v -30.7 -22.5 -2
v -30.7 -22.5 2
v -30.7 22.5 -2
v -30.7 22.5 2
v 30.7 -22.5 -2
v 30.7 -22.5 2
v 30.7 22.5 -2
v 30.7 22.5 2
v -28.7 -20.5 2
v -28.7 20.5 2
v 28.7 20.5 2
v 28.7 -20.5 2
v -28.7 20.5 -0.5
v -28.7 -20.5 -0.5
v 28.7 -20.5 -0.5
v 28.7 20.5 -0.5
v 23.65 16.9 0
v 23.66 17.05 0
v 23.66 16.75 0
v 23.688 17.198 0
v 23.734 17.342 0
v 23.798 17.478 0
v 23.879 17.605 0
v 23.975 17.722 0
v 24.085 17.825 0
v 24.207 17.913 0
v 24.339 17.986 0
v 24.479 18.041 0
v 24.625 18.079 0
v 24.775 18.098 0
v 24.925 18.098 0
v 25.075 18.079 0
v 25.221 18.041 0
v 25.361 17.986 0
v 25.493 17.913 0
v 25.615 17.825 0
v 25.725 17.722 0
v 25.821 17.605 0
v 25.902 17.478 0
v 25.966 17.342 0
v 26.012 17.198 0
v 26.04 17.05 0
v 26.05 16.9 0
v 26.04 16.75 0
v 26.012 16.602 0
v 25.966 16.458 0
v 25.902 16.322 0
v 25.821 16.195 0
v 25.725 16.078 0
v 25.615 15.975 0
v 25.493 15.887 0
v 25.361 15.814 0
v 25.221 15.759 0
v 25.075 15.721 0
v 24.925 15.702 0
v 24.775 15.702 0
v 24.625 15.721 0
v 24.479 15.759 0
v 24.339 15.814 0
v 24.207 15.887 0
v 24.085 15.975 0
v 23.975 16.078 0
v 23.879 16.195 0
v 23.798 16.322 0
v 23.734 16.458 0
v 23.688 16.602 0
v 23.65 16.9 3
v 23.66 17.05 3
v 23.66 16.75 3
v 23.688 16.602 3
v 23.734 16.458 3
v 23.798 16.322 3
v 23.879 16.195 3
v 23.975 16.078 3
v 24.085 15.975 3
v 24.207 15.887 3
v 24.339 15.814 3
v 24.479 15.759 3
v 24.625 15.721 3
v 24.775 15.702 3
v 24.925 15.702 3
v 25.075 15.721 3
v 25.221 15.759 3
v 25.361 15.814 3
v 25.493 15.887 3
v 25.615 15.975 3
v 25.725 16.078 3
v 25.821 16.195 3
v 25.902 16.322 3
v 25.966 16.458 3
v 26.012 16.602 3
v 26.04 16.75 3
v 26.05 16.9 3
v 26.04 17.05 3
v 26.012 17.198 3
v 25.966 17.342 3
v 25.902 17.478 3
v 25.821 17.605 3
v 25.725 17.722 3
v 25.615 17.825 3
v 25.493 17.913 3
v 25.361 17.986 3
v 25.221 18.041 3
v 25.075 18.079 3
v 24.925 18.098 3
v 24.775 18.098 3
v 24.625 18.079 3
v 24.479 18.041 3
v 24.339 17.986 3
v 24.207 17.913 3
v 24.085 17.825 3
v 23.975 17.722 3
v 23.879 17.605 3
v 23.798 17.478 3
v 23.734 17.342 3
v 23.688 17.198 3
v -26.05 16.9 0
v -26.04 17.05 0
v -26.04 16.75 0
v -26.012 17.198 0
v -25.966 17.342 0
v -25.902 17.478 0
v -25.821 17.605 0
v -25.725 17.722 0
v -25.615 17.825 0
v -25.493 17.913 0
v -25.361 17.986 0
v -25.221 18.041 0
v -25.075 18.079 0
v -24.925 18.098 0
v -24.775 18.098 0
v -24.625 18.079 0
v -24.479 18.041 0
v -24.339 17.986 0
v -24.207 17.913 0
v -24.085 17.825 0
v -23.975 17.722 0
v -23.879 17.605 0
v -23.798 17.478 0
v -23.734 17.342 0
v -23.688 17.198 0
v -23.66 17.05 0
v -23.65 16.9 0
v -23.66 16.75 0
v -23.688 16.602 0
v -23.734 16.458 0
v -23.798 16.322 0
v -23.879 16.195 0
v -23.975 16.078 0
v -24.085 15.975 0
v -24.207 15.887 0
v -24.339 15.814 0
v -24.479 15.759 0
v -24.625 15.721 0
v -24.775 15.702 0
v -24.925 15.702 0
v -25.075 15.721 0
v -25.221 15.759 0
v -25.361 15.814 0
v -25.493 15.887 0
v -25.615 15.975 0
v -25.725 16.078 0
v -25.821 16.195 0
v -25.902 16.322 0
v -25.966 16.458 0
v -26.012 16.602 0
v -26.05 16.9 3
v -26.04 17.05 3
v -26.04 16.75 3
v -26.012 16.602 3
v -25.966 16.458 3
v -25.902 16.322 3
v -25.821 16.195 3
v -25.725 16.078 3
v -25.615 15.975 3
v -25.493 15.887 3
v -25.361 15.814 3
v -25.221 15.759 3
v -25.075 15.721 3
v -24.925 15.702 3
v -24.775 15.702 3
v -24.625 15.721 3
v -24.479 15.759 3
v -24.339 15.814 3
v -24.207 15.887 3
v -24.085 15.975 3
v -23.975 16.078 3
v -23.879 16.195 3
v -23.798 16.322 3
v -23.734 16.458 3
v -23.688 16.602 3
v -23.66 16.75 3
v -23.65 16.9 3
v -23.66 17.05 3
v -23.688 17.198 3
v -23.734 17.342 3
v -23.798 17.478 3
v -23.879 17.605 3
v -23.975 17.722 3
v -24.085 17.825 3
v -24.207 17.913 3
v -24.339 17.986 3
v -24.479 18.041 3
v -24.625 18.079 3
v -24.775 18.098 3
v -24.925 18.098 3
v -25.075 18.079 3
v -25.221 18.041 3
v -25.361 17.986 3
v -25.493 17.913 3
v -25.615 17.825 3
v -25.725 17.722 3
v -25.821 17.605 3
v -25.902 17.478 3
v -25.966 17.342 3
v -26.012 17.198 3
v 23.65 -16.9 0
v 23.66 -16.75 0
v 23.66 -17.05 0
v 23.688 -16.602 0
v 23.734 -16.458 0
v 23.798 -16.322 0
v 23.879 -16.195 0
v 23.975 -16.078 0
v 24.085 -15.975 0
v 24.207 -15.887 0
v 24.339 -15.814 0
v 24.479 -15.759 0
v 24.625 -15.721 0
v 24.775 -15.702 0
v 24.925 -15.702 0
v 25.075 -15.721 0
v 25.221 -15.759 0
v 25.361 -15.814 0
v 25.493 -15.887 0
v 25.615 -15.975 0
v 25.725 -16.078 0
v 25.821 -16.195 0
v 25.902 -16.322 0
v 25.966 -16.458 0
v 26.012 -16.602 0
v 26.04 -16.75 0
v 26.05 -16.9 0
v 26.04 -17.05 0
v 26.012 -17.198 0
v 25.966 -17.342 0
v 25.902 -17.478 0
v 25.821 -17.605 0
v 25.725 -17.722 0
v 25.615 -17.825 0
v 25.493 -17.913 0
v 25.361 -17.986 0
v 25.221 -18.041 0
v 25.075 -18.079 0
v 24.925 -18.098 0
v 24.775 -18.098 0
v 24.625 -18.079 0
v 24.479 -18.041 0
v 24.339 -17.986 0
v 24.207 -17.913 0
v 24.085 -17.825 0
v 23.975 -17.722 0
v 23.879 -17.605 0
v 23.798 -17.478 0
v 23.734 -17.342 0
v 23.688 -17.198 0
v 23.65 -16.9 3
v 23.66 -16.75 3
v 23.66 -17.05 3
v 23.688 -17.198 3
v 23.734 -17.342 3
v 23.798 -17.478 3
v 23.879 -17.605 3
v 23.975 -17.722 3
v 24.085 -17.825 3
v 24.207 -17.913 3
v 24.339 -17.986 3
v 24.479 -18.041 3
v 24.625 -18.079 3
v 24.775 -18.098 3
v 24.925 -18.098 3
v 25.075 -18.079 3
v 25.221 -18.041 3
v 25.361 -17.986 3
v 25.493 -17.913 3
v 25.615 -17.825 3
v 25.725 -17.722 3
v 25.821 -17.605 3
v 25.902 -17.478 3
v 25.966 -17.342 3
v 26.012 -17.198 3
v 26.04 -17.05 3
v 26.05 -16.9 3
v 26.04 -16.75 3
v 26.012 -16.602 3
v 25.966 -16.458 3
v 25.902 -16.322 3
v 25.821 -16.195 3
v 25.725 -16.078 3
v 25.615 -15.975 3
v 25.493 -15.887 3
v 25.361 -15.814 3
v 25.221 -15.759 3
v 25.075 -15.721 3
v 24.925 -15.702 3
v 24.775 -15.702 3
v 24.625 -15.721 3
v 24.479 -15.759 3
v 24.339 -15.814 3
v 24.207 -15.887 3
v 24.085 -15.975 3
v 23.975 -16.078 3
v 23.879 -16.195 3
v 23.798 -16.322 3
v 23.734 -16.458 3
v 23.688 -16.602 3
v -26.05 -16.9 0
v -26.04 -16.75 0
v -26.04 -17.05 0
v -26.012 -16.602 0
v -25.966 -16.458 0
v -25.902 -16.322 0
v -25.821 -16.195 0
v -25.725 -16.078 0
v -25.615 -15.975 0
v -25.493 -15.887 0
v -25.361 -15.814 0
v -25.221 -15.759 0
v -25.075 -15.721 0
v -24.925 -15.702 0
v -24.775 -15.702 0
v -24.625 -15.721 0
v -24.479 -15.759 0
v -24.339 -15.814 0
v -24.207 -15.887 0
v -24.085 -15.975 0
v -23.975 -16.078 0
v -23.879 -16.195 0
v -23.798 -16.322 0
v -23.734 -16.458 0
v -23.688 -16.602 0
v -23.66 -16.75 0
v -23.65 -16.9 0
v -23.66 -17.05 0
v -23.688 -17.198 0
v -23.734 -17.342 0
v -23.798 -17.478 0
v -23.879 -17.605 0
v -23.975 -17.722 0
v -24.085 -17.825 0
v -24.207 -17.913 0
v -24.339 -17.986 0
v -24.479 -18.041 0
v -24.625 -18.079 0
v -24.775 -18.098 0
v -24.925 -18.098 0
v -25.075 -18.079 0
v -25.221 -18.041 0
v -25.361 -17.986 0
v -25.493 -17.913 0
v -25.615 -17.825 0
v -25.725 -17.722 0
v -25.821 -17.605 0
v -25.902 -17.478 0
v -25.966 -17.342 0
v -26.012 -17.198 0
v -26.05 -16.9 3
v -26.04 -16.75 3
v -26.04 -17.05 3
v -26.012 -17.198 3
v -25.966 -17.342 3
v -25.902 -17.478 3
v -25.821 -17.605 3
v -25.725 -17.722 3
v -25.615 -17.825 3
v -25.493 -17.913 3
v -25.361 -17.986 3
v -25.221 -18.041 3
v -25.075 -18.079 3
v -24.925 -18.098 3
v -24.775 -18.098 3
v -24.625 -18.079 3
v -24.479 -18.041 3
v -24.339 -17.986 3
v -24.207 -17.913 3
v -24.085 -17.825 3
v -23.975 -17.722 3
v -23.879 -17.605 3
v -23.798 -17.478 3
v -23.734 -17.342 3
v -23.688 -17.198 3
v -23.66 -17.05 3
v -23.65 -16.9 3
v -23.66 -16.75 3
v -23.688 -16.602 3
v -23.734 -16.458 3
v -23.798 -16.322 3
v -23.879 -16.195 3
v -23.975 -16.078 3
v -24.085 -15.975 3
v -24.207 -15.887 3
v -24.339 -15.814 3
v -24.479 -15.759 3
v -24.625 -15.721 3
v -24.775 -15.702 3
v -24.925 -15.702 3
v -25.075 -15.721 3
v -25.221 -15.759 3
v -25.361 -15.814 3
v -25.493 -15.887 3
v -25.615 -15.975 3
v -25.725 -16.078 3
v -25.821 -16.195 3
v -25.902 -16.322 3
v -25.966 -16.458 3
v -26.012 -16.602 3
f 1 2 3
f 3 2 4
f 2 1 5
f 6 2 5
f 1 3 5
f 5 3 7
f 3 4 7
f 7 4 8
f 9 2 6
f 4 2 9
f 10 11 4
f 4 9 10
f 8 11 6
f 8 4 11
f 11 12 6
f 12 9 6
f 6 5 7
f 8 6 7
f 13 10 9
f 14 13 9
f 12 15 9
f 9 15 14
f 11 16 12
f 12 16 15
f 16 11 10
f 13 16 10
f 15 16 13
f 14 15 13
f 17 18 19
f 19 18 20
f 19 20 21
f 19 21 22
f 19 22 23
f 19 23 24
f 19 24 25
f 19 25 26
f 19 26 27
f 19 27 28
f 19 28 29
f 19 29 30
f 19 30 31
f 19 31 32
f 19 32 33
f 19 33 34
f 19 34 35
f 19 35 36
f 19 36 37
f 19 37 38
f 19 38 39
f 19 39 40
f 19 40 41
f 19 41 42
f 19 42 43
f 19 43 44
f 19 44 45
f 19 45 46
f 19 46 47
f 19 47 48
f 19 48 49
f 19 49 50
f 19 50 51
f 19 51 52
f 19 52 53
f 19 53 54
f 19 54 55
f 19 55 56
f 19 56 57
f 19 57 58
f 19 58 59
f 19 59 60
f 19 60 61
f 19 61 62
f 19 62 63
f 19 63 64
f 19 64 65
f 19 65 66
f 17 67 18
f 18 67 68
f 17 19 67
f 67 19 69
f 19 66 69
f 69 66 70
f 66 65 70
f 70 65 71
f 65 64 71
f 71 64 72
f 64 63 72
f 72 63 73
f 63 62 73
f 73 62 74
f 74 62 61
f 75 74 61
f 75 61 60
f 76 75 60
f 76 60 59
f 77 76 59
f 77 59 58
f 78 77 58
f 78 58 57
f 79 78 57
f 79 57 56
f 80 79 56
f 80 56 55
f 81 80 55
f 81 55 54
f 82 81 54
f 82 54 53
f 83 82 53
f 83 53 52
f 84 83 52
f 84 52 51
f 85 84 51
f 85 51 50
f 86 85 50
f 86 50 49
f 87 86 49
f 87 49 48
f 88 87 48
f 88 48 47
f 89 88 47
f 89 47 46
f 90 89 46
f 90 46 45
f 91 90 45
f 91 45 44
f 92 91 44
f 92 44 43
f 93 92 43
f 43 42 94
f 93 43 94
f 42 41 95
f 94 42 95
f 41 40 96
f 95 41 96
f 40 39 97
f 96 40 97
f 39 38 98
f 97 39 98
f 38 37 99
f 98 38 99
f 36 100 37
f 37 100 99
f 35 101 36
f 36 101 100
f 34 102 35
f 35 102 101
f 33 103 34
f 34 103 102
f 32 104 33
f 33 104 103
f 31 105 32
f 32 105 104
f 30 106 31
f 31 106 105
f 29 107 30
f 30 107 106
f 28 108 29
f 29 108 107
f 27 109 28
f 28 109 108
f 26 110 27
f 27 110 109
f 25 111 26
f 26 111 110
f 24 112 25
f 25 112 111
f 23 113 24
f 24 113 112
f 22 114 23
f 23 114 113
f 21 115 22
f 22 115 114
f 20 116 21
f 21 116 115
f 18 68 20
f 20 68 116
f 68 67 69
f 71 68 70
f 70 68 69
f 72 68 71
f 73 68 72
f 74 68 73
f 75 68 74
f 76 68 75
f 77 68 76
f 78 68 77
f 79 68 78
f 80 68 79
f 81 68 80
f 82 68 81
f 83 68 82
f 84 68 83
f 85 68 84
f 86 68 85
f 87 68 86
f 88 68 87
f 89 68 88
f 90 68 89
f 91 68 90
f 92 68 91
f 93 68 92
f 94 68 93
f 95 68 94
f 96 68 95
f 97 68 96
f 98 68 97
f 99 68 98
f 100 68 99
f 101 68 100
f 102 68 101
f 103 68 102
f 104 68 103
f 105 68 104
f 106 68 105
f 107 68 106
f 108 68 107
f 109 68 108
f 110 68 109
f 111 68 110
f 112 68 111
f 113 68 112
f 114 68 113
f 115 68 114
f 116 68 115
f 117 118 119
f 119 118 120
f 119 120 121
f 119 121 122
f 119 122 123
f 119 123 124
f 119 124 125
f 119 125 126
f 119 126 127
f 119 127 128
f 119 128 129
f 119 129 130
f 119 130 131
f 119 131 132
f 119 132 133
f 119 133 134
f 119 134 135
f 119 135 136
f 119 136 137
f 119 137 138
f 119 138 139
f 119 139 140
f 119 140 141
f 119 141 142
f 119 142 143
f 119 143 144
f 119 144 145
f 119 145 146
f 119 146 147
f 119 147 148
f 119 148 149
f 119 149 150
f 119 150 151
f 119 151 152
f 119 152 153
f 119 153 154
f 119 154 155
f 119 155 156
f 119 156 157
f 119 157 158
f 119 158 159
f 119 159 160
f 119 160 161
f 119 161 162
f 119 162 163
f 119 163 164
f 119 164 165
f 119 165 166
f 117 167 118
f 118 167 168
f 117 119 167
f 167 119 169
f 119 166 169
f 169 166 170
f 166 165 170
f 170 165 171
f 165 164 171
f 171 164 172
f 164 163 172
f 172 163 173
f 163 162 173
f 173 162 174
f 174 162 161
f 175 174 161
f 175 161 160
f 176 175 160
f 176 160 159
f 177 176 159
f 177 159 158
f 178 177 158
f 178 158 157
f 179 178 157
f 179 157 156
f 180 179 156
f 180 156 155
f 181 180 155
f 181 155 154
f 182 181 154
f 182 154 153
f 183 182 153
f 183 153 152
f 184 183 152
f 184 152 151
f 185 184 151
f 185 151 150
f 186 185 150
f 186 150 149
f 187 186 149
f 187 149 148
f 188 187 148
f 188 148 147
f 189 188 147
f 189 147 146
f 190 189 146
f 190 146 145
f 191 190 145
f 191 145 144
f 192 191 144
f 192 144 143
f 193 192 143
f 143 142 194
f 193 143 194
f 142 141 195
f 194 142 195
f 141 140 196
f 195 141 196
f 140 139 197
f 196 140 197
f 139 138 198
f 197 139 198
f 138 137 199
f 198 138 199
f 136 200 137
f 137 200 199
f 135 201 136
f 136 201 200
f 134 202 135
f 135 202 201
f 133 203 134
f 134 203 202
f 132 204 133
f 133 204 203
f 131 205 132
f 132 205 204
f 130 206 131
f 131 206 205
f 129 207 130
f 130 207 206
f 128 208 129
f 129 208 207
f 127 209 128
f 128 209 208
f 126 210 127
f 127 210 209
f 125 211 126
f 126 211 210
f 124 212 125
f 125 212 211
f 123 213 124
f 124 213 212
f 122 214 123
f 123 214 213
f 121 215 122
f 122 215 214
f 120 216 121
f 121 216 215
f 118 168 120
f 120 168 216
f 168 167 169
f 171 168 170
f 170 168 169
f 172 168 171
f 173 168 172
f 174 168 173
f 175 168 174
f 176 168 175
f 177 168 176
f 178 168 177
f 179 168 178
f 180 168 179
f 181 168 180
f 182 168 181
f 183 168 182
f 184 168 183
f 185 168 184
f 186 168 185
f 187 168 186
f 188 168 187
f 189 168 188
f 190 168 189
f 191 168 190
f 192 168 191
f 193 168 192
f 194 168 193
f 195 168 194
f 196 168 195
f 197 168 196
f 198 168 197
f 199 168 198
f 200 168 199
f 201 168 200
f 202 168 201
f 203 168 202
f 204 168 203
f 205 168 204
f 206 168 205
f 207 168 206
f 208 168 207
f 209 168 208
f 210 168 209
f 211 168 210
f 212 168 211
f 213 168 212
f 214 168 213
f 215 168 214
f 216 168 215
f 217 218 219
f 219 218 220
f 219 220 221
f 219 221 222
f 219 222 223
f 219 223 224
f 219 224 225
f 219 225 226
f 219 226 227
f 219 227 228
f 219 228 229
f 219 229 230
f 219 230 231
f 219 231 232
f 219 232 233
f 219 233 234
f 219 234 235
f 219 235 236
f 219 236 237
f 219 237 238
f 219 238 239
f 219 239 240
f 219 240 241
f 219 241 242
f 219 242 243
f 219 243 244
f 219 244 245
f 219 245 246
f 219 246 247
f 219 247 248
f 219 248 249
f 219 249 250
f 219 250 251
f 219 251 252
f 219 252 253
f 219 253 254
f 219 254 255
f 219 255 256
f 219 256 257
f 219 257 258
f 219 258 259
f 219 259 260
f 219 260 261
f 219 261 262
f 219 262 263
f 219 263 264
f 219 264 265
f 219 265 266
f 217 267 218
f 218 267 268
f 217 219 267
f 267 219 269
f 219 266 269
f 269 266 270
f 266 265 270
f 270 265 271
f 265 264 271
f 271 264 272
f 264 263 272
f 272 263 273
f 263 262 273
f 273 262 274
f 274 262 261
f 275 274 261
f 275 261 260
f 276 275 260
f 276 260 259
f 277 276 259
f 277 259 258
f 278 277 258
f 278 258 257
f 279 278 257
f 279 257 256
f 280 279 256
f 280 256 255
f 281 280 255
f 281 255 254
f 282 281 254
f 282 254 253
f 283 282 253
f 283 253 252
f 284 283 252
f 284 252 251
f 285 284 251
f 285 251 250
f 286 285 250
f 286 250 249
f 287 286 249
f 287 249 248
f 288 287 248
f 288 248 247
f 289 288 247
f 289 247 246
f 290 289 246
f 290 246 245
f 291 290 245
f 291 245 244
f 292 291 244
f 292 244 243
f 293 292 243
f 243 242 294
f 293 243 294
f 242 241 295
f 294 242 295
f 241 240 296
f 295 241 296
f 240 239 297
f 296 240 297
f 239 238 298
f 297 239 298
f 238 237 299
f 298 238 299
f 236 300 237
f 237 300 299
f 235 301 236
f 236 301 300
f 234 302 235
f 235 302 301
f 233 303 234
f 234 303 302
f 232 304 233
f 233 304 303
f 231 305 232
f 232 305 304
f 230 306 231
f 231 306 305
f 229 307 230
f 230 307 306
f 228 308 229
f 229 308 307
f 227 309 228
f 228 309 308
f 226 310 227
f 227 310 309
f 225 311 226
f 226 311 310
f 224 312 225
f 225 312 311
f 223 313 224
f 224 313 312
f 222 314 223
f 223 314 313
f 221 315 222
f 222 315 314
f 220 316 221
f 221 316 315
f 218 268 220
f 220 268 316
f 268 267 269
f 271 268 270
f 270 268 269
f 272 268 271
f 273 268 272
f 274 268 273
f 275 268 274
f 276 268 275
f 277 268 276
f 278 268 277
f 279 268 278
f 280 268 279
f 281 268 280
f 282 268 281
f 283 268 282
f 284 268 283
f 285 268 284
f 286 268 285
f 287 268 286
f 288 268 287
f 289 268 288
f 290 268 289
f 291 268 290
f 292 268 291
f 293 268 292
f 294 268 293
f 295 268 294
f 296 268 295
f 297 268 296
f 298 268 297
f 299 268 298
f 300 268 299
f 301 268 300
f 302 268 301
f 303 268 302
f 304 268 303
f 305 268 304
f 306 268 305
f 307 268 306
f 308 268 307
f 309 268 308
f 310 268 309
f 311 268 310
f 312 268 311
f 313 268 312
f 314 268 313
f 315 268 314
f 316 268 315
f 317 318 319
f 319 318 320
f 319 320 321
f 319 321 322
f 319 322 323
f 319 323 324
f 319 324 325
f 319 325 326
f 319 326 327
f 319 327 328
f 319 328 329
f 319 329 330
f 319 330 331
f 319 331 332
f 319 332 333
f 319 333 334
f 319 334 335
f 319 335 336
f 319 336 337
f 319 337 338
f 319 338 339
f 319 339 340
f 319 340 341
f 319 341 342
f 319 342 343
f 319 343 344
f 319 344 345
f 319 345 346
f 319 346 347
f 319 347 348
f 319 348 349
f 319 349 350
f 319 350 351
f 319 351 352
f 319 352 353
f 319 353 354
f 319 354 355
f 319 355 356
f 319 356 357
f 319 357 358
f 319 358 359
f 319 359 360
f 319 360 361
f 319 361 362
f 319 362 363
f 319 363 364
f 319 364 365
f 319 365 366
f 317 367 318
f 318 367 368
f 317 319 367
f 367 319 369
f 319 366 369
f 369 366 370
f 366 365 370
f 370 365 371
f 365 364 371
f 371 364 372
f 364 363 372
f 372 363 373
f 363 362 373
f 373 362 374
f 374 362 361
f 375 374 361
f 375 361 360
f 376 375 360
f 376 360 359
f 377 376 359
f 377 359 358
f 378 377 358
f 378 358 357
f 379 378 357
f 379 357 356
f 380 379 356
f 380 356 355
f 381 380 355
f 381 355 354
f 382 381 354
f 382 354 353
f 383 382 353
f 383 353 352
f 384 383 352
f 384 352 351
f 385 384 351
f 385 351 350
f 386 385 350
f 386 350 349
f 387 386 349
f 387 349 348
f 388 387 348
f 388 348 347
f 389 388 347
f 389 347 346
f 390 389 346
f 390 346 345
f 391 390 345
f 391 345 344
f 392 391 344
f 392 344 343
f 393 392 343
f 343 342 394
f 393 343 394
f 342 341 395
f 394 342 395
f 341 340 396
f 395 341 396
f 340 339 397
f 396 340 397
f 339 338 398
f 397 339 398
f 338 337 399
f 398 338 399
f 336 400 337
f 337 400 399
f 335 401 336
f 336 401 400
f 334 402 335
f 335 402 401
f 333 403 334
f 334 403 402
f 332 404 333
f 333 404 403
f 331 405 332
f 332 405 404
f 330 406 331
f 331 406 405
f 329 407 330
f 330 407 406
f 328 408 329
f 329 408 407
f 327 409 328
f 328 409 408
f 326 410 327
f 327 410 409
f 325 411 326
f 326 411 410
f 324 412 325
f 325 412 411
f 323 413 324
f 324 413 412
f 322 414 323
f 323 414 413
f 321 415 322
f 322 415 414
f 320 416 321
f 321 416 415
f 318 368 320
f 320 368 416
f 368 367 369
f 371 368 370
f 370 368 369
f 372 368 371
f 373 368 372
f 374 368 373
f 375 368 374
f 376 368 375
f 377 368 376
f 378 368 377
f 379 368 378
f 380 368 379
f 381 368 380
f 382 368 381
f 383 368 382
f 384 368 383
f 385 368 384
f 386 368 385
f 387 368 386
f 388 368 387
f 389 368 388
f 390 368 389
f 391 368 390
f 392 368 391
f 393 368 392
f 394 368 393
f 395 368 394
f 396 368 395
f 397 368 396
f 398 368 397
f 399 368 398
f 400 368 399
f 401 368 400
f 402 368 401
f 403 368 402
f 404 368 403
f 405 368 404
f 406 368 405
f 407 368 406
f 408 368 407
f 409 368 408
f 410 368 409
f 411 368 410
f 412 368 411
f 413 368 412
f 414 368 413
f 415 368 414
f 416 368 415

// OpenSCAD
//****************************************************************
//*  Name    : Generic Coaster                                   *
//*  Author  : Robert Joseph Korn                                *
//*  Notice  : Copyright (c) 2015 Open Valley Consulting Corp    *
//*          : All Rights Reserved                               *
//*  Date    : 5/27/15                                           *
//*  Version : 1.0                                               *
//*  Notes   : Simple Circuit Board Coaster                      *
//*          :                                                   *
//****************************************************************


$fn=50;

wallD = 2;

boardW = 57.4;
boardH = 41;
boardD = 2;

outerW = boardW + 2*wallD;
outerH = boardH + 2*wallD;
outerD = boardD + wallD;

holeW = 49.7;
holeH = 33.8;
holeD = 2.4;

union(){
	difference() {
		cube([outerW, outerH, outerD],center=true);
		translate([0, 0, wallD/2]) cube([boardW, boardH, boardD+1],center=true);
	}

	translate([holeW/2, holeH/2, 0]) cylinder(h=wallD+1,d=holeD);
	translate([-holeW/2, holeH/2, 0]) cylinder(h=wallD+1,d=holeD);
	translate([holeW/2, -holeH/2, 0]) cylinder(h=wallD+1,d=holeD);
	translate([-holeW/2, -holeH/2, 0]) cylinder(h=wallD+1,d=holeD);
}
